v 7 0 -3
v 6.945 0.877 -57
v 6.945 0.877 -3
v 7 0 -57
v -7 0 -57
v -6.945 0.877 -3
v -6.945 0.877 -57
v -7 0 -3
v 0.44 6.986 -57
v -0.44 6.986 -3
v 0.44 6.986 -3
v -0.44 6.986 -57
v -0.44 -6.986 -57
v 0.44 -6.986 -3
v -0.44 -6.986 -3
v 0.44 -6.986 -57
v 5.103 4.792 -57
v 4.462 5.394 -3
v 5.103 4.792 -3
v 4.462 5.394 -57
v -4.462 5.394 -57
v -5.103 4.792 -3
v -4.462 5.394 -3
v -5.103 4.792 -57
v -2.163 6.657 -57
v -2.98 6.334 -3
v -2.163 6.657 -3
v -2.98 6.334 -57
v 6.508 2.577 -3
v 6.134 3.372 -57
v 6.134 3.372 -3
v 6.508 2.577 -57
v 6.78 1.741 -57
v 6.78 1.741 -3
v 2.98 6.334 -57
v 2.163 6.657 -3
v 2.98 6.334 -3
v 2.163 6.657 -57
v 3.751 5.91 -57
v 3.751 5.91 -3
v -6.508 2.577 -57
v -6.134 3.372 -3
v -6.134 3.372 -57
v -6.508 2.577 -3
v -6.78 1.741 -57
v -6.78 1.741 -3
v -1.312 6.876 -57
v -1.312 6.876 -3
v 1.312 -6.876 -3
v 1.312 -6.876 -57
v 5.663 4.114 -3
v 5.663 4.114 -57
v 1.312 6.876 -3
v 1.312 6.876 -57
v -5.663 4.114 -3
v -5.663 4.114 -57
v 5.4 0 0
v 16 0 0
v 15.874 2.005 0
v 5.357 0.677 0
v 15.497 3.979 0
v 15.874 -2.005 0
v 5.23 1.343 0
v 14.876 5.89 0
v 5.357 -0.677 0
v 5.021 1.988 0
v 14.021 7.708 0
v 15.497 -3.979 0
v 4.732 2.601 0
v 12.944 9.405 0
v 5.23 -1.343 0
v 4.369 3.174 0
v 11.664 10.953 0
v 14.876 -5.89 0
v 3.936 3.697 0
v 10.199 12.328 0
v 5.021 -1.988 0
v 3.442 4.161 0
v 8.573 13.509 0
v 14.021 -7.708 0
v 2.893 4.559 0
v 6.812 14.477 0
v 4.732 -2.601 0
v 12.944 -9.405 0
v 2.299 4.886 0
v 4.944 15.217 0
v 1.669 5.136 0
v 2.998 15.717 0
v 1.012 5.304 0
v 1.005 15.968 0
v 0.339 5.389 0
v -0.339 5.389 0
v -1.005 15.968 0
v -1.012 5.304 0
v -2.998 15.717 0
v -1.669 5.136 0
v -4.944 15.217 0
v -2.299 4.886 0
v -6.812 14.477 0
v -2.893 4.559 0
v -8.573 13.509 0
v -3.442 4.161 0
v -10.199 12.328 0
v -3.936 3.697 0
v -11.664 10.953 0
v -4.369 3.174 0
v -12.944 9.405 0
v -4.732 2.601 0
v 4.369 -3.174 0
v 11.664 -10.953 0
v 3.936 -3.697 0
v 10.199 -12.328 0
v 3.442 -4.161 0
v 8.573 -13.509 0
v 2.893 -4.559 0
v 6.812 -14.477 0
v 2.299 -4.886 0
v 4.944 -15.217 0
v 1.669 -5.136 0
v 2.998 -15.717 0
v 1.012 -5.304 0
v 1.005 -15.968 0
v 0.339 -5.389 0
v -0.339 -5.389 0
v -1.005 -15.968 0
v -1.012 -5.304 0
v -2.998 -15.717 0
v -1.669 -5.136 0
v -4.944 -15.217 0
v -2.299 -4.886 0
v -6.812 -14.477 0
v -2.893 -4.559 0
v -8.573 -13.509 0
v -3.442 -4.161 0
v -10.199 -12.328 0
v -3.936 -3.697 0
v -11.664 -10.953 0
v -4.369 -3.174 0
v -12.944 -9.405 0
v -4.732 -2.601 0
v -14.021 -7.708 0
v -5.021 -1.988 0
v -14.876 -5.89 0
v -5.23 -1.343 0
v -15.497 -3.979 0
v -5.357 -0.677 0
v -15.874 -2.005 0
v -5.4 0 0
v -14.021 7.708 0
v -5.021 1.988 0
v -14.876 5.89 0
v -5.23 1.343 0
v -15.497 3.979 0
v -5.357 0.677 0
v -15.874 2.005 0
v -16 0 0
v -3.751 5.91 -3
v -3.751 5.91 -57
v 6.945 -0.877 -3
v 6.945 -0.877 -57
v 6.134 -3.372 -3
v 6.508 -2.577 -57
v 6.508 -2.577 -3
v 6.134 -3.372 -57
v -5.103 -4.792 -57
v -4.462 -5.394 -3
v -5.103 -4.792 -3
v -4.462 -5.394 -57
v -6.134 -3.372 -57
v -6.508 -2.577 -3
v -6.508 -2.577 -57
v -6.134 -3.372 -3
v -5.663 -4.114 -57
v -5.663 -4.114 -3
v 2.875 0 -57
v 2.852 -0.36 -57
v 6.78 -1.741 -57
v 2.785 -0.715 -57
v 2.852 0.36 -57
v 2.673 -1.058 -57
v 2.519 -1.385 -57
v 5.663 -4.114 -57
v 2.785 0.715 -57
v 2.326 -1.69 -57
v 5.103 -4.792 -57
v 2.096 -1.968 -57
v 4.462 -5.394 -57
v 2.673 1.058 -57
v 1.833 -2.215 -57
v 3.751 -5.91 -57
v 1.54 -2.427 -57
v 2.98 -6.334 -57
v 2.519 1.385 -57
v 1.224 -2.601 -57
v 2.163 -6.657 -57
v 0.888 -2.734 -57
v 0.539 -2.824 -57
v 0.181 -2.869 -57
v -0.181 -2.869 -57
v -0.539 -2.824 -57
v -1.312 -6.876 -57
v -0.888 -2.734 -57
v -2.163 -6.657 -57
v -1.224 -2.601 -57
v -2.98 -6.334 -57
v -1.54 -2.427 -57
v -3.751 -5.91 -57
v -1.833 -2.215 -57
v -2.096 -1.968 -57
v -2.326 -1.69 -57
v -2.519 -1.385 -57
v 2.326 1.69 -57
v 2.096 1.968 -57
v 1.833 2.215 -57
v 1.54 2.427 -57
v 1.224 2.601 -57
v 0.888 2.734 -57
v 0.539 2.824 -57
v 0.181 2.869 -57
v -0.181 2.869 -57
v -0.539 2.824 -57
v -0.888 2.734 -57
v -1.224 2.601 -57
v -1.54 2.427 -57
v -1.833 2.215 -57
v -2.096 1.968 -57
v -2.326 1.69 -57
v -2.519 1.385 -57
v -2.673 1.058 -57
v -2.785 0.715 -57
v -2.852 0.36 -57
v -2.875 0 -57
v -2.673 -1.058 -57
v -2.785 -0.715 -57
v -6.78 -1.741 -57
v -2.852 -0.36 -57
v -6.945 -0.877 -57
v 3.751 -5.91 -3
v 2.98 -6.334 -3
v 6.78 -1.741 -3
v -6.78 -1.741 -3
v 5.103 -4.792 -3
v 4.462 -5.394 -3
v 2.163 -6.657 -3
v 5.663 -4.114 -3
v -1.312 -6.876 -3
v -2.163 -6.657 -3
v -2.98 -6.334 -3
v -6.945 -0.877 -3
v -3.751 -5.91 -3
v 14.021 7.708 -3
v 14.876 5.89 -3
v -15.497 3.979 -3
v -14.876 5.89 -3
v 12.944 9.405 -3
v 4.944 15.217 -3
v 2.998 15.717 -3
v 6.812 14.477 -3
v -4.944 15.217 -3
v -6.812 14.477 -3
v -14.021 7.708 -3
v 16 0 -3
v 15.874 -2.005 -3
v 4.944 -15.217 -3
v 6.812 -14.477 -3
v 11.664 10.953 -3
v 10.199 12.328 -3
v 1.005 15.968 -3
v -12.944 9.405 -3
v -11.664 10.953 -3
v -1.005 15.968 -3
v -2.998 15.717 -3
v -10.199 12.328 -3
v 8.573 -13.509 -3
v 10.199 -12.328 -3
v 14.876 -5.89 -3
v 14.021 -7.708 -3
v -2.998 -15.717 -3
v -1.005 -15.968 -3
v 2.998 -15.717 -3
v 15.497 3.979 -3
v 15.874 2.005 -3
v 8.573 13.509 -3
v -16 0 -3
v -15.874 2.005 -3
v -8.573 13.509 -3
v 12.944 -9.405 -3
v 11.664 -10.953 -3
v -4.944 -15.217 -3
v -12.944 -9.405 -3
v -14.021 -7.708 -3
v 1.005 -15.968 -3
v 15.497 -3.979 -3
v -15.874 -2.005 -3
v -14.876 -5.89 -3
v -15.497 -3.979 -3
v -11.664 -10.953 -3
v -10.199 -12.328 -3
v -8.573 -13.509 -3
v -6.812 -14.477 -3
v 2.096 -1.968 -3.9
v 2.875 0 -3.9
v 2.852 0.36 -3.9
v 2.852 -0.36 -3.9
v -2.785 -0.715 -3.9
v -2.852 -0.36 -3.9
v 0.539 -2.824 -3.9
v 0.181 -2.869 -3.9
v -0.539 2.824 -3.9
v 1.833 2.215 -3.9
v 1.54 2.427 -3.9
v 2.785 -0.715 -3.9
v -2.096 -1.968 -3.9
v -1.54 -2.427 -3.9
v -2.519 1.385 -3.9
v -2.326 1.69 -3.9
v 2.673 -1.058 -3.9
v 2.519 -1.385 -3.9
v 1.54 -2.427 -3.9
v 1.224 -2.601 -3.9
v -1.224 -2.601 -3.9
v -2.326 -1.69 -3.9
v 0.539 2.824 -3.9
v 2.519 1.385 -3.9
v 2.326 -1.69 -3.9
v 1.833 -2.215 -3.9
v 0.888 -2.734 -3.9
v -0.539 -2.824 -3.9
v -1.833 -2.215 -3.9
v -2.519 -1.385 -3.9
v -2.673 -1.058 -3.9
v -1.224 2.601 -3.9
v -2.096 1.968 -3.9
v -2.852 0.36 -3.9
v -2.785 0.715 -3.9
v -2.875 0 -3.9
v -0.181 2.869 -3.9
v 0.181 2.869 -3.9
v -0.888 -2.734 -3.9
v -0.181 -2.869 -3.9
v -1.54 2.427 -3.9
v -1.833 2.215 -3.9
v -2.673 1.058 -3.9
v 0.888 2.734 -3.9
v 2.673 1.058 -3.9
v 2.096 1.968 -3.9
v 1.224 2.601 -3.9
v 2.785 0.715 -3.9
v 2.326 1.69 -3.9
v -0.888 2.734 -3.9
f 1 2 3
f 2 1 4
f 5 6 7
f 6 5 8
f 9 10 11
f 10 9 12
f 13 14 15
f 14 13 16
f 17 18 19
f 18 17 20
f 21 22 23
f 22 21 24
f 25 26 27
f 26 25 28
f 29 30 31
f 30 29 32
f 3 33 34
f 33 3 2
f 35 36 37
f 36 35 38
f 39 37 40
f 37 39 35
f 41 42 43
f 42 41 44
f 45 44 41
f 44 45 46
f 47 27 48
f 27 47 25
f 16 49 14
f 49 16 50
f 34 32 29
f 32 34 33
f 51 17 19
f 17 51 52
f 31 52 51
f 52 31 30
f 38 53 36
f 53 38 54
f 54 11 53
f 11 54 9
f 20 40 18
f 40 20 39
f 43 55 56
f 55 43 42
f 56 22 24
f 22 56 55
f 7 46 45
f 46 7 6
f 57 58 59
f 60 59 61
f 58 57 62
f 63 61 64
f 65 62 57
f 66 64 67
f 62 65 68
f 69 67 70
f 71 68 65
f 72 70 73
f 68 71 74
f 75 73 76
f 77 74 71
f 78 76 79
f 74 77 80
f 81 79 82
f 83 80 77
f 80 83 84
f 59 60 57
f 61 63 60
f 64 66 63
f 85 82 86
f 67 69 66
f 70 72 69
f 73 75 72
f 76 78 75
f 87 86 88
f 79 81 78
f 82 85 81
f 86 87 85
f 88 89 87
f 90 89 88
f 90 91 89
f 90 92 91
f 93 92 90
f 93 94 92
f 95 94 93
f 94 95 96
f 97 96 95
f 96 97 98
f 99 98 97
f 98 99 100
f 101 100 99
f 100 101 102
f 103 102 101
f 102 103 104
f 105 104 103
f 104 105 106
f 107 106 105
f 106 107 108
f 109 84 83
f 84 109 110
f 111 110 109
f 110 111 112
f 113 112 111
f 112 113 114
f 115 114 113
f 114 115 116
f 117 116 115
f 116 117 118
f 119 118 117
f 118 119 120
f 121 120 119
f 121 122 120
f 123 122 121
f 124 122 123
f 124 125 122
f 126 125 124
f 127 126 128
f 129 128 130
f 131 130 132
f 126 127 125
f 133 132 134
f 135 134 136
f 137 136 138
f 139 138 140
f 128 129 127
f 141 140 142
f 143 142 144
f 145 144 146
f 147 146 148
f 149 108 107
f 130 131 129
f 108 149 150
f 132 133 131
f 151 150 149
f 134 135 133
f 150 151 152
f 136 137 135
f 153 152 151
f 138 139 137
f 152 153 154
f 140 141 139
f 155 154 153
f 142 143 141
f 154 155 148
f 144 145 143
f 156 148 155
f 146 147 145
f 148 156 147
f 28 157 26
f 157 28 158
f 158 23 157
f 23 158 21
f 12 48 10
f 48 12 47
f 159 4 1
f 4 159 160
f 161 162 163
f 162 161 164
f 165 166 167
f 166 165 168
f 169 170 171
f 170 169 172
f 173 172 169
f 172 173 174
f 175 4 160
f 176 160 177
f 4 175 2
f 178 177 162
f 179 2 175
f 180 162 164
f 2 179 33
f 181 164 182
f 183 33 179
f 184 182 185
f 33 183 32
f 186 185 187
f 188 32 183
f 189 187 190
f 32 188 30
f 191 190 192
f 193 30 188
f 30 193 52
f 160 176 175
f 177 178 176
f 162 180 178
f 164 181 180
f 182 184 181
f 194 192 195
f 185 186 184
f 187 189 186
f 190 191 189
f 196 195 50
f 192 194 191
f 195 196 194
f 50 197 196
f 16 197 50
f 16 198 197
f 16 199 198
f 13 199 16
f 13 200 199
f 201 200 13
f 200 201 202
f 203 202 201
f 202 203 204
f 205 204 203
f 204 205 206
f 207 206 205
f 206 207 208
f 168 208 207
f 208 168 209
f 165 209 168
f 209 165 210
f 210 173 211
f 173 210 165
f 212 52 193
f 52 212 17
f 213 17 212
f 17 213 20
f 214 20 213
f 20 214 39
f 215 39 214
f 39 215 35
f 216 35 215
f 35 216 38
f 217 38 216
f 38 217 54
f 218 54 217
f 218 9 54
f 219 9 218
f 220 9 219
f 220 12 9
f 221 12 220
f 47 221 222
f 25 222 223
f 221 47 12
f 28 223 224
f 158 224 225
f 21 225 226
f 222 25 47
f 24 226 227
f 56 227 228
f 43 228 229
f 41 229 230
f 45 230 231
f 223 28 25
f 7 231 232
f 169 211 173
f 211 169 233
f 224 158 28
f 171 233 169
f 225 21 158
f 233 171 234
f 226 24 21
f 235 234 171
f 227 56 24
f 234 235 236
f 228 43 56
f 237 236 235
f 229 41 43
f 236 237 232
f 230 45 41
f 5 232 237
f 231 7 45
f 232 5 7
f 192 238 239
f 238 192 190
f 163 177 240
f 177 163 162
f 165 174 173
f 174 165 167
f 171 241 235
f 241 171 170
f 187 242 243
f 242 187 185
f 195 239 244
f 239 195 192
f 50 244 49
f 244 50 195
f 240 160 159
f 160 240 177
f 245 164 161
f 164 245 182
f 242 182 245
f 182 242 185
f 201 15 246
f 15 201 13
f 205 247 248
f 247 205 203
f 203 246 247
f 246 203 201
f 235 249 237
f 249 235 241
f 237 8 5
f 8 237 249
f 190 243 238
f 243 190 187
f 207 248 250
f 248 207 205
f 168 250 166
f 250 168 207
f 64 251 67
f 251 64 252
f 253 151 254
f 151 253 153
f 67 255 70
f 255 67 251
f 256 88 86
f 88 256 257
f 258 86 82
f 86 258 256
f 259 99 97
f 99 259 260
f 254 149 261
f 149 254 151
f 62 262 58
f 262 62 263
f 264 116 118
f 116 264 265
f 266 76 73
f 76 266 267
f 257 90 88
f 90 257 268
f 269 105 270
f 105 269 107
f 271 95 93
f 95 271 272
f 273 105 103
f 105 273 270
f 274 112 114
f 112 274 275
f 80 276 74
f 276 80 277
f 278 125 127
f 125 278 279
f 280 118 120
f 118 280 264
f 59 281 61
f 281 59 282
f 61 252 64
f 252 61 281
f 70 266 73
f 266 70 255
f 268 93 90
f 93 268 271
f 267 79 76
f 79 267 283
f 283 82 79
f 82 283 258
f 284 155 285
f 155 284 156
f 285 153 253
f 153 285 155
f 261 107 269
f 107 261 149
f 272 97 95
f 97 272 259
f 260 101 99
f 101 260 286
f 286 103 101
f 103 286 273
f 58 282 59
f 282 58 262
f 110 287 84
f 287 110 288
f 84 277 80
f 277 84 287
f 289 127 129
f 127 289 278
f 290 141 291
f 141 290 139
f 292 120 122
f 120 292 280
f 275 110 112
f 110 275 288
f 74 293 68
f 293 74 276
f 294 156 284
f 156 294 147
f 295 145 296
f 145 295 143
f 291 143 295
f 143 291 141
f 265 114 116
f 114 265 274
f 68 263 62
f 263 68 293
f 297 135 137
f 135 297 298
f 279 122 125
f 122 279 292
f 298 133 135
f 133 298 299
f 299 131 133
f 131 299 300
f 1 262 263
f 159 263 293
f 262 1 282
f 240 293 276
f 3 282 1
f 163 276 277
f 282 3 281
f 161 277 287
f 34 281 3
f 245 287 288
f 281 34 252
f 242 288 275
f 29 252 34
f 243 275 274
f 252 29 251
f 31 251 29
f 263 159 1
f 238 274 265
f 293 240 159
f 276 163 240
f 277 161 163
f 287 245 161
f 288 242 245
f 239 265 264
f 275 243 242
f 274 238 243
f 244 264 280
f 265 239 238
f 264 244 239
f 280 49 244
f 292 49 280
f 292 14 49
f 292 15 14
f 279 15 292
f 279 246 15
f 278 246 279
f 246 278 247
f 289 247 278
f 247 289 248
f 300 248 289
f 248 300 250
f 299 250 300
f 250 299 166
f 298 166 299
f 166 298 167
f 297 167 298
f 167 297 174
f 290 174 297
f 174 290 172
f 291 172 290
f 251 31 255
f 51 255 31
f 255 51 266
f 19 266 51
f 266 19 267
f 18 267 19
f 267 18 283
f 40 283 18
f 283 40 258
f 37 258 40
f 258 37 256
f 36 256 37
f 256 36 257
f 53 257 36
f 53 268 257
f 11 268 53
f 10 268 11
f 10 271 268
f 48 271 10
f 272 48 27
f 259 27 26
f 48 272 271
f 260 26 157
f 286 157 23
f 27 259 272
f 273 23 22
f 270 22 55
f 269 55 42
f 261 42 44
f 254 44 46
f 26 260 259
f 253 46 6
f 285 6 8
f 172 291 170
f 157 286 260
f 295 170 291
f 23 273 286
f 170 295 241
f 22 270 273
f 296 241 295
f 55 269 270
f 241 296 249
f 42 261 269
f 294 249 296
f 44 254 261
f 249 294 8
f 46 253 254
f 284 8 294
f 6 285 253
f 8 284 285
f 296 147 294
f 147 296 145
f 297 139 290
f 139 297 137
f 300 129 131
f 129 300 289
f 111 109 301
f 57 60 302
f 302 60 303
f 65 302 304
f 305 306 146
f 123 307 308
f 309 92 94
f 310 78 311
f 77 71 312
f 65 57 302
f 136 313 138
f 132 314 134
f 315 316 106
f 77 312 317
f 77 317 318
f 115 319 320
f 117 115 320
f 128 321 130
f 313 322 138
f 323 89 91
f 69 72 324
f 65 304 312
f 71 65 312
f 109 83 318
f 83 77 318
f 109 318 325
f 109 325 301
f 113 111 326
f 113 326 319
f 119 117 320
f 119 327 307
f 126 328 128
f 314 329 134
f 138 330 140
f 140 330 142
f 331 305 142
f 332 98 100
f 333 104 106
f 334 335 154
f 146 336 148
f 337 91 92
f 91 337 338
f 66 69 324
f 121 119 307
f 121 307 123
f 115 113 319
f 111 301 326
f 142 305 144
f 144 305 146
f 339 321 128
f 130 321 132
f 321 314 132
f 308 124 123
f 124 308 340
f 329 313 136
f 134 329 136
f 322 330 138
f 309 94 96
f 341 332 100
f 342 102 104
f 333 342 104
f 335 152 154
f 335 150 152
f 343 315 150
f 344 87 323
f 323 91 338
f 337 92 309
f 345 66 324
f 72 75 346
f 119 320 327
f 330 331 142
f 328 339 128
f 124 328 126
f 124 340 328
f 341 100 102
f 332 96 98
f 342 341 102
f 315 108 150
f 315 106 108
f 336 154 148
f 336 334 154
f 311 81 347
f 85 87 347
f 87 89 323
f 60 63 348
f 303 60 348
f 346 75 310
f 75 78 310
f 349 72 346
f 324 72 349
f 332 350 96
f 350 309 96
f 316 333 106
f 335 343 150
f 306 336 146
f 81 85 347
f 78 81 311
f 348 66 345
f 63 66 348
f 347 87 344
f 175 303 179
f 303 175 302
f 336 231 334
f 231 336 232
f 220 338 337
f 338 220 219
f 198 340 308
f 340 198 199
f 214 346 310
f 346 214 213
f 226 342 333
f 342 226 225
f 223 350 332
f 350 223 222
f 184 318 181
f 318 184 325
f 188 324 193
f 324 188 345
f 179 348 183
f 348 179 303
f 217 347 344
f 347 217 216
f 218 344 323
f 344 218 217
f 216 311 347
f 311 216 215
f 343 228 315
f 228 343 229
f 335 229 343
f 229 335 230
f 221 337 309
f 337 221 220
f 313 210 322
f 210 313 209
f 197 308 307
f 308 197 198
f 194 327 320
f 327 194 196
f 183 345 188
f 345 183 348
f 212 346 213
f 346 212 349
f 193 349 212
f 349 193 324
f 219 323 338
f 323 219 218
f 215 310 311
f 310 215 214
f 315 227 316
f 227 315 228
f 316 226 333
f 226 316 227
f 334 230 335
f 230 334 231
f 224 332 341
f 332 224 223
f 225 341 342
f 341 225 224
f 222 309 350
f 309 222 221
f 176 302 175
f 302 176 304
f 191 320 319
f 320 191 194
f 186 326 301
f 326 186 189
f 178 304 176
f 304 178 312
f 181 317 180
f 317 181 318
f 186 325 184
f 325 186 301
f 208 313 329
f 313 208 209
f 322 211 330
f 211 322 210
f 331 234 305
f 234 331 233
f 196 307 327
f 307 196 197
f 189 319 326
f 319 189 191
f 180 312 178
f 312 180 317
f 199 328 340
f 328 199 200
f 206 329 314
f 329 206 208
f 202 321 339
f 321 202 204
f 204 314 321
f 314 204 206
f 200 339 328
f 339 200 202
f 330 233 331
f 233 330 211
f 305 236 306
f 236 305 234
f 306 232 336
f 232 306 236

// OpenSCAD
$fn = 50;


difference() {
	union() {
		translate(v = [0, 0, -57.0000000000]) {
			cylinder(h = 57, r = 7.0000000000);
		}
		translate(v = [0, 0, -3.0000000000]) {
			cylinder(h = 3, r = 16.0000000000);
		}
	}
	union() {
		translate(v = [0, 0, 0]) {
			rotate(a = [0, 0, 0]) {
				difference() {
					union() {
						#translate(v = [0, 0, -57.0000000000]) {
							cylinder(h = 57, r = 2.6000000000);
						}
						#translate(v = [0, 0, -3.9000000000]) {
							cylinder(h = 3.9000000000, r = 7.0000000000, r1 = 2.8750000000, r2 = 5.4000000000);
						}
						#translate(v = [0, 0, -57.0000000000]) {
							cylinder(h = 57, r = 2.8750000000);
						}
						#translate(v = [0, 0, -57.0000000000]) {
							cylinder(h = 57, r = 2.6000000000);
						}
					}
					union();
				}
			}
		}
	}
}
